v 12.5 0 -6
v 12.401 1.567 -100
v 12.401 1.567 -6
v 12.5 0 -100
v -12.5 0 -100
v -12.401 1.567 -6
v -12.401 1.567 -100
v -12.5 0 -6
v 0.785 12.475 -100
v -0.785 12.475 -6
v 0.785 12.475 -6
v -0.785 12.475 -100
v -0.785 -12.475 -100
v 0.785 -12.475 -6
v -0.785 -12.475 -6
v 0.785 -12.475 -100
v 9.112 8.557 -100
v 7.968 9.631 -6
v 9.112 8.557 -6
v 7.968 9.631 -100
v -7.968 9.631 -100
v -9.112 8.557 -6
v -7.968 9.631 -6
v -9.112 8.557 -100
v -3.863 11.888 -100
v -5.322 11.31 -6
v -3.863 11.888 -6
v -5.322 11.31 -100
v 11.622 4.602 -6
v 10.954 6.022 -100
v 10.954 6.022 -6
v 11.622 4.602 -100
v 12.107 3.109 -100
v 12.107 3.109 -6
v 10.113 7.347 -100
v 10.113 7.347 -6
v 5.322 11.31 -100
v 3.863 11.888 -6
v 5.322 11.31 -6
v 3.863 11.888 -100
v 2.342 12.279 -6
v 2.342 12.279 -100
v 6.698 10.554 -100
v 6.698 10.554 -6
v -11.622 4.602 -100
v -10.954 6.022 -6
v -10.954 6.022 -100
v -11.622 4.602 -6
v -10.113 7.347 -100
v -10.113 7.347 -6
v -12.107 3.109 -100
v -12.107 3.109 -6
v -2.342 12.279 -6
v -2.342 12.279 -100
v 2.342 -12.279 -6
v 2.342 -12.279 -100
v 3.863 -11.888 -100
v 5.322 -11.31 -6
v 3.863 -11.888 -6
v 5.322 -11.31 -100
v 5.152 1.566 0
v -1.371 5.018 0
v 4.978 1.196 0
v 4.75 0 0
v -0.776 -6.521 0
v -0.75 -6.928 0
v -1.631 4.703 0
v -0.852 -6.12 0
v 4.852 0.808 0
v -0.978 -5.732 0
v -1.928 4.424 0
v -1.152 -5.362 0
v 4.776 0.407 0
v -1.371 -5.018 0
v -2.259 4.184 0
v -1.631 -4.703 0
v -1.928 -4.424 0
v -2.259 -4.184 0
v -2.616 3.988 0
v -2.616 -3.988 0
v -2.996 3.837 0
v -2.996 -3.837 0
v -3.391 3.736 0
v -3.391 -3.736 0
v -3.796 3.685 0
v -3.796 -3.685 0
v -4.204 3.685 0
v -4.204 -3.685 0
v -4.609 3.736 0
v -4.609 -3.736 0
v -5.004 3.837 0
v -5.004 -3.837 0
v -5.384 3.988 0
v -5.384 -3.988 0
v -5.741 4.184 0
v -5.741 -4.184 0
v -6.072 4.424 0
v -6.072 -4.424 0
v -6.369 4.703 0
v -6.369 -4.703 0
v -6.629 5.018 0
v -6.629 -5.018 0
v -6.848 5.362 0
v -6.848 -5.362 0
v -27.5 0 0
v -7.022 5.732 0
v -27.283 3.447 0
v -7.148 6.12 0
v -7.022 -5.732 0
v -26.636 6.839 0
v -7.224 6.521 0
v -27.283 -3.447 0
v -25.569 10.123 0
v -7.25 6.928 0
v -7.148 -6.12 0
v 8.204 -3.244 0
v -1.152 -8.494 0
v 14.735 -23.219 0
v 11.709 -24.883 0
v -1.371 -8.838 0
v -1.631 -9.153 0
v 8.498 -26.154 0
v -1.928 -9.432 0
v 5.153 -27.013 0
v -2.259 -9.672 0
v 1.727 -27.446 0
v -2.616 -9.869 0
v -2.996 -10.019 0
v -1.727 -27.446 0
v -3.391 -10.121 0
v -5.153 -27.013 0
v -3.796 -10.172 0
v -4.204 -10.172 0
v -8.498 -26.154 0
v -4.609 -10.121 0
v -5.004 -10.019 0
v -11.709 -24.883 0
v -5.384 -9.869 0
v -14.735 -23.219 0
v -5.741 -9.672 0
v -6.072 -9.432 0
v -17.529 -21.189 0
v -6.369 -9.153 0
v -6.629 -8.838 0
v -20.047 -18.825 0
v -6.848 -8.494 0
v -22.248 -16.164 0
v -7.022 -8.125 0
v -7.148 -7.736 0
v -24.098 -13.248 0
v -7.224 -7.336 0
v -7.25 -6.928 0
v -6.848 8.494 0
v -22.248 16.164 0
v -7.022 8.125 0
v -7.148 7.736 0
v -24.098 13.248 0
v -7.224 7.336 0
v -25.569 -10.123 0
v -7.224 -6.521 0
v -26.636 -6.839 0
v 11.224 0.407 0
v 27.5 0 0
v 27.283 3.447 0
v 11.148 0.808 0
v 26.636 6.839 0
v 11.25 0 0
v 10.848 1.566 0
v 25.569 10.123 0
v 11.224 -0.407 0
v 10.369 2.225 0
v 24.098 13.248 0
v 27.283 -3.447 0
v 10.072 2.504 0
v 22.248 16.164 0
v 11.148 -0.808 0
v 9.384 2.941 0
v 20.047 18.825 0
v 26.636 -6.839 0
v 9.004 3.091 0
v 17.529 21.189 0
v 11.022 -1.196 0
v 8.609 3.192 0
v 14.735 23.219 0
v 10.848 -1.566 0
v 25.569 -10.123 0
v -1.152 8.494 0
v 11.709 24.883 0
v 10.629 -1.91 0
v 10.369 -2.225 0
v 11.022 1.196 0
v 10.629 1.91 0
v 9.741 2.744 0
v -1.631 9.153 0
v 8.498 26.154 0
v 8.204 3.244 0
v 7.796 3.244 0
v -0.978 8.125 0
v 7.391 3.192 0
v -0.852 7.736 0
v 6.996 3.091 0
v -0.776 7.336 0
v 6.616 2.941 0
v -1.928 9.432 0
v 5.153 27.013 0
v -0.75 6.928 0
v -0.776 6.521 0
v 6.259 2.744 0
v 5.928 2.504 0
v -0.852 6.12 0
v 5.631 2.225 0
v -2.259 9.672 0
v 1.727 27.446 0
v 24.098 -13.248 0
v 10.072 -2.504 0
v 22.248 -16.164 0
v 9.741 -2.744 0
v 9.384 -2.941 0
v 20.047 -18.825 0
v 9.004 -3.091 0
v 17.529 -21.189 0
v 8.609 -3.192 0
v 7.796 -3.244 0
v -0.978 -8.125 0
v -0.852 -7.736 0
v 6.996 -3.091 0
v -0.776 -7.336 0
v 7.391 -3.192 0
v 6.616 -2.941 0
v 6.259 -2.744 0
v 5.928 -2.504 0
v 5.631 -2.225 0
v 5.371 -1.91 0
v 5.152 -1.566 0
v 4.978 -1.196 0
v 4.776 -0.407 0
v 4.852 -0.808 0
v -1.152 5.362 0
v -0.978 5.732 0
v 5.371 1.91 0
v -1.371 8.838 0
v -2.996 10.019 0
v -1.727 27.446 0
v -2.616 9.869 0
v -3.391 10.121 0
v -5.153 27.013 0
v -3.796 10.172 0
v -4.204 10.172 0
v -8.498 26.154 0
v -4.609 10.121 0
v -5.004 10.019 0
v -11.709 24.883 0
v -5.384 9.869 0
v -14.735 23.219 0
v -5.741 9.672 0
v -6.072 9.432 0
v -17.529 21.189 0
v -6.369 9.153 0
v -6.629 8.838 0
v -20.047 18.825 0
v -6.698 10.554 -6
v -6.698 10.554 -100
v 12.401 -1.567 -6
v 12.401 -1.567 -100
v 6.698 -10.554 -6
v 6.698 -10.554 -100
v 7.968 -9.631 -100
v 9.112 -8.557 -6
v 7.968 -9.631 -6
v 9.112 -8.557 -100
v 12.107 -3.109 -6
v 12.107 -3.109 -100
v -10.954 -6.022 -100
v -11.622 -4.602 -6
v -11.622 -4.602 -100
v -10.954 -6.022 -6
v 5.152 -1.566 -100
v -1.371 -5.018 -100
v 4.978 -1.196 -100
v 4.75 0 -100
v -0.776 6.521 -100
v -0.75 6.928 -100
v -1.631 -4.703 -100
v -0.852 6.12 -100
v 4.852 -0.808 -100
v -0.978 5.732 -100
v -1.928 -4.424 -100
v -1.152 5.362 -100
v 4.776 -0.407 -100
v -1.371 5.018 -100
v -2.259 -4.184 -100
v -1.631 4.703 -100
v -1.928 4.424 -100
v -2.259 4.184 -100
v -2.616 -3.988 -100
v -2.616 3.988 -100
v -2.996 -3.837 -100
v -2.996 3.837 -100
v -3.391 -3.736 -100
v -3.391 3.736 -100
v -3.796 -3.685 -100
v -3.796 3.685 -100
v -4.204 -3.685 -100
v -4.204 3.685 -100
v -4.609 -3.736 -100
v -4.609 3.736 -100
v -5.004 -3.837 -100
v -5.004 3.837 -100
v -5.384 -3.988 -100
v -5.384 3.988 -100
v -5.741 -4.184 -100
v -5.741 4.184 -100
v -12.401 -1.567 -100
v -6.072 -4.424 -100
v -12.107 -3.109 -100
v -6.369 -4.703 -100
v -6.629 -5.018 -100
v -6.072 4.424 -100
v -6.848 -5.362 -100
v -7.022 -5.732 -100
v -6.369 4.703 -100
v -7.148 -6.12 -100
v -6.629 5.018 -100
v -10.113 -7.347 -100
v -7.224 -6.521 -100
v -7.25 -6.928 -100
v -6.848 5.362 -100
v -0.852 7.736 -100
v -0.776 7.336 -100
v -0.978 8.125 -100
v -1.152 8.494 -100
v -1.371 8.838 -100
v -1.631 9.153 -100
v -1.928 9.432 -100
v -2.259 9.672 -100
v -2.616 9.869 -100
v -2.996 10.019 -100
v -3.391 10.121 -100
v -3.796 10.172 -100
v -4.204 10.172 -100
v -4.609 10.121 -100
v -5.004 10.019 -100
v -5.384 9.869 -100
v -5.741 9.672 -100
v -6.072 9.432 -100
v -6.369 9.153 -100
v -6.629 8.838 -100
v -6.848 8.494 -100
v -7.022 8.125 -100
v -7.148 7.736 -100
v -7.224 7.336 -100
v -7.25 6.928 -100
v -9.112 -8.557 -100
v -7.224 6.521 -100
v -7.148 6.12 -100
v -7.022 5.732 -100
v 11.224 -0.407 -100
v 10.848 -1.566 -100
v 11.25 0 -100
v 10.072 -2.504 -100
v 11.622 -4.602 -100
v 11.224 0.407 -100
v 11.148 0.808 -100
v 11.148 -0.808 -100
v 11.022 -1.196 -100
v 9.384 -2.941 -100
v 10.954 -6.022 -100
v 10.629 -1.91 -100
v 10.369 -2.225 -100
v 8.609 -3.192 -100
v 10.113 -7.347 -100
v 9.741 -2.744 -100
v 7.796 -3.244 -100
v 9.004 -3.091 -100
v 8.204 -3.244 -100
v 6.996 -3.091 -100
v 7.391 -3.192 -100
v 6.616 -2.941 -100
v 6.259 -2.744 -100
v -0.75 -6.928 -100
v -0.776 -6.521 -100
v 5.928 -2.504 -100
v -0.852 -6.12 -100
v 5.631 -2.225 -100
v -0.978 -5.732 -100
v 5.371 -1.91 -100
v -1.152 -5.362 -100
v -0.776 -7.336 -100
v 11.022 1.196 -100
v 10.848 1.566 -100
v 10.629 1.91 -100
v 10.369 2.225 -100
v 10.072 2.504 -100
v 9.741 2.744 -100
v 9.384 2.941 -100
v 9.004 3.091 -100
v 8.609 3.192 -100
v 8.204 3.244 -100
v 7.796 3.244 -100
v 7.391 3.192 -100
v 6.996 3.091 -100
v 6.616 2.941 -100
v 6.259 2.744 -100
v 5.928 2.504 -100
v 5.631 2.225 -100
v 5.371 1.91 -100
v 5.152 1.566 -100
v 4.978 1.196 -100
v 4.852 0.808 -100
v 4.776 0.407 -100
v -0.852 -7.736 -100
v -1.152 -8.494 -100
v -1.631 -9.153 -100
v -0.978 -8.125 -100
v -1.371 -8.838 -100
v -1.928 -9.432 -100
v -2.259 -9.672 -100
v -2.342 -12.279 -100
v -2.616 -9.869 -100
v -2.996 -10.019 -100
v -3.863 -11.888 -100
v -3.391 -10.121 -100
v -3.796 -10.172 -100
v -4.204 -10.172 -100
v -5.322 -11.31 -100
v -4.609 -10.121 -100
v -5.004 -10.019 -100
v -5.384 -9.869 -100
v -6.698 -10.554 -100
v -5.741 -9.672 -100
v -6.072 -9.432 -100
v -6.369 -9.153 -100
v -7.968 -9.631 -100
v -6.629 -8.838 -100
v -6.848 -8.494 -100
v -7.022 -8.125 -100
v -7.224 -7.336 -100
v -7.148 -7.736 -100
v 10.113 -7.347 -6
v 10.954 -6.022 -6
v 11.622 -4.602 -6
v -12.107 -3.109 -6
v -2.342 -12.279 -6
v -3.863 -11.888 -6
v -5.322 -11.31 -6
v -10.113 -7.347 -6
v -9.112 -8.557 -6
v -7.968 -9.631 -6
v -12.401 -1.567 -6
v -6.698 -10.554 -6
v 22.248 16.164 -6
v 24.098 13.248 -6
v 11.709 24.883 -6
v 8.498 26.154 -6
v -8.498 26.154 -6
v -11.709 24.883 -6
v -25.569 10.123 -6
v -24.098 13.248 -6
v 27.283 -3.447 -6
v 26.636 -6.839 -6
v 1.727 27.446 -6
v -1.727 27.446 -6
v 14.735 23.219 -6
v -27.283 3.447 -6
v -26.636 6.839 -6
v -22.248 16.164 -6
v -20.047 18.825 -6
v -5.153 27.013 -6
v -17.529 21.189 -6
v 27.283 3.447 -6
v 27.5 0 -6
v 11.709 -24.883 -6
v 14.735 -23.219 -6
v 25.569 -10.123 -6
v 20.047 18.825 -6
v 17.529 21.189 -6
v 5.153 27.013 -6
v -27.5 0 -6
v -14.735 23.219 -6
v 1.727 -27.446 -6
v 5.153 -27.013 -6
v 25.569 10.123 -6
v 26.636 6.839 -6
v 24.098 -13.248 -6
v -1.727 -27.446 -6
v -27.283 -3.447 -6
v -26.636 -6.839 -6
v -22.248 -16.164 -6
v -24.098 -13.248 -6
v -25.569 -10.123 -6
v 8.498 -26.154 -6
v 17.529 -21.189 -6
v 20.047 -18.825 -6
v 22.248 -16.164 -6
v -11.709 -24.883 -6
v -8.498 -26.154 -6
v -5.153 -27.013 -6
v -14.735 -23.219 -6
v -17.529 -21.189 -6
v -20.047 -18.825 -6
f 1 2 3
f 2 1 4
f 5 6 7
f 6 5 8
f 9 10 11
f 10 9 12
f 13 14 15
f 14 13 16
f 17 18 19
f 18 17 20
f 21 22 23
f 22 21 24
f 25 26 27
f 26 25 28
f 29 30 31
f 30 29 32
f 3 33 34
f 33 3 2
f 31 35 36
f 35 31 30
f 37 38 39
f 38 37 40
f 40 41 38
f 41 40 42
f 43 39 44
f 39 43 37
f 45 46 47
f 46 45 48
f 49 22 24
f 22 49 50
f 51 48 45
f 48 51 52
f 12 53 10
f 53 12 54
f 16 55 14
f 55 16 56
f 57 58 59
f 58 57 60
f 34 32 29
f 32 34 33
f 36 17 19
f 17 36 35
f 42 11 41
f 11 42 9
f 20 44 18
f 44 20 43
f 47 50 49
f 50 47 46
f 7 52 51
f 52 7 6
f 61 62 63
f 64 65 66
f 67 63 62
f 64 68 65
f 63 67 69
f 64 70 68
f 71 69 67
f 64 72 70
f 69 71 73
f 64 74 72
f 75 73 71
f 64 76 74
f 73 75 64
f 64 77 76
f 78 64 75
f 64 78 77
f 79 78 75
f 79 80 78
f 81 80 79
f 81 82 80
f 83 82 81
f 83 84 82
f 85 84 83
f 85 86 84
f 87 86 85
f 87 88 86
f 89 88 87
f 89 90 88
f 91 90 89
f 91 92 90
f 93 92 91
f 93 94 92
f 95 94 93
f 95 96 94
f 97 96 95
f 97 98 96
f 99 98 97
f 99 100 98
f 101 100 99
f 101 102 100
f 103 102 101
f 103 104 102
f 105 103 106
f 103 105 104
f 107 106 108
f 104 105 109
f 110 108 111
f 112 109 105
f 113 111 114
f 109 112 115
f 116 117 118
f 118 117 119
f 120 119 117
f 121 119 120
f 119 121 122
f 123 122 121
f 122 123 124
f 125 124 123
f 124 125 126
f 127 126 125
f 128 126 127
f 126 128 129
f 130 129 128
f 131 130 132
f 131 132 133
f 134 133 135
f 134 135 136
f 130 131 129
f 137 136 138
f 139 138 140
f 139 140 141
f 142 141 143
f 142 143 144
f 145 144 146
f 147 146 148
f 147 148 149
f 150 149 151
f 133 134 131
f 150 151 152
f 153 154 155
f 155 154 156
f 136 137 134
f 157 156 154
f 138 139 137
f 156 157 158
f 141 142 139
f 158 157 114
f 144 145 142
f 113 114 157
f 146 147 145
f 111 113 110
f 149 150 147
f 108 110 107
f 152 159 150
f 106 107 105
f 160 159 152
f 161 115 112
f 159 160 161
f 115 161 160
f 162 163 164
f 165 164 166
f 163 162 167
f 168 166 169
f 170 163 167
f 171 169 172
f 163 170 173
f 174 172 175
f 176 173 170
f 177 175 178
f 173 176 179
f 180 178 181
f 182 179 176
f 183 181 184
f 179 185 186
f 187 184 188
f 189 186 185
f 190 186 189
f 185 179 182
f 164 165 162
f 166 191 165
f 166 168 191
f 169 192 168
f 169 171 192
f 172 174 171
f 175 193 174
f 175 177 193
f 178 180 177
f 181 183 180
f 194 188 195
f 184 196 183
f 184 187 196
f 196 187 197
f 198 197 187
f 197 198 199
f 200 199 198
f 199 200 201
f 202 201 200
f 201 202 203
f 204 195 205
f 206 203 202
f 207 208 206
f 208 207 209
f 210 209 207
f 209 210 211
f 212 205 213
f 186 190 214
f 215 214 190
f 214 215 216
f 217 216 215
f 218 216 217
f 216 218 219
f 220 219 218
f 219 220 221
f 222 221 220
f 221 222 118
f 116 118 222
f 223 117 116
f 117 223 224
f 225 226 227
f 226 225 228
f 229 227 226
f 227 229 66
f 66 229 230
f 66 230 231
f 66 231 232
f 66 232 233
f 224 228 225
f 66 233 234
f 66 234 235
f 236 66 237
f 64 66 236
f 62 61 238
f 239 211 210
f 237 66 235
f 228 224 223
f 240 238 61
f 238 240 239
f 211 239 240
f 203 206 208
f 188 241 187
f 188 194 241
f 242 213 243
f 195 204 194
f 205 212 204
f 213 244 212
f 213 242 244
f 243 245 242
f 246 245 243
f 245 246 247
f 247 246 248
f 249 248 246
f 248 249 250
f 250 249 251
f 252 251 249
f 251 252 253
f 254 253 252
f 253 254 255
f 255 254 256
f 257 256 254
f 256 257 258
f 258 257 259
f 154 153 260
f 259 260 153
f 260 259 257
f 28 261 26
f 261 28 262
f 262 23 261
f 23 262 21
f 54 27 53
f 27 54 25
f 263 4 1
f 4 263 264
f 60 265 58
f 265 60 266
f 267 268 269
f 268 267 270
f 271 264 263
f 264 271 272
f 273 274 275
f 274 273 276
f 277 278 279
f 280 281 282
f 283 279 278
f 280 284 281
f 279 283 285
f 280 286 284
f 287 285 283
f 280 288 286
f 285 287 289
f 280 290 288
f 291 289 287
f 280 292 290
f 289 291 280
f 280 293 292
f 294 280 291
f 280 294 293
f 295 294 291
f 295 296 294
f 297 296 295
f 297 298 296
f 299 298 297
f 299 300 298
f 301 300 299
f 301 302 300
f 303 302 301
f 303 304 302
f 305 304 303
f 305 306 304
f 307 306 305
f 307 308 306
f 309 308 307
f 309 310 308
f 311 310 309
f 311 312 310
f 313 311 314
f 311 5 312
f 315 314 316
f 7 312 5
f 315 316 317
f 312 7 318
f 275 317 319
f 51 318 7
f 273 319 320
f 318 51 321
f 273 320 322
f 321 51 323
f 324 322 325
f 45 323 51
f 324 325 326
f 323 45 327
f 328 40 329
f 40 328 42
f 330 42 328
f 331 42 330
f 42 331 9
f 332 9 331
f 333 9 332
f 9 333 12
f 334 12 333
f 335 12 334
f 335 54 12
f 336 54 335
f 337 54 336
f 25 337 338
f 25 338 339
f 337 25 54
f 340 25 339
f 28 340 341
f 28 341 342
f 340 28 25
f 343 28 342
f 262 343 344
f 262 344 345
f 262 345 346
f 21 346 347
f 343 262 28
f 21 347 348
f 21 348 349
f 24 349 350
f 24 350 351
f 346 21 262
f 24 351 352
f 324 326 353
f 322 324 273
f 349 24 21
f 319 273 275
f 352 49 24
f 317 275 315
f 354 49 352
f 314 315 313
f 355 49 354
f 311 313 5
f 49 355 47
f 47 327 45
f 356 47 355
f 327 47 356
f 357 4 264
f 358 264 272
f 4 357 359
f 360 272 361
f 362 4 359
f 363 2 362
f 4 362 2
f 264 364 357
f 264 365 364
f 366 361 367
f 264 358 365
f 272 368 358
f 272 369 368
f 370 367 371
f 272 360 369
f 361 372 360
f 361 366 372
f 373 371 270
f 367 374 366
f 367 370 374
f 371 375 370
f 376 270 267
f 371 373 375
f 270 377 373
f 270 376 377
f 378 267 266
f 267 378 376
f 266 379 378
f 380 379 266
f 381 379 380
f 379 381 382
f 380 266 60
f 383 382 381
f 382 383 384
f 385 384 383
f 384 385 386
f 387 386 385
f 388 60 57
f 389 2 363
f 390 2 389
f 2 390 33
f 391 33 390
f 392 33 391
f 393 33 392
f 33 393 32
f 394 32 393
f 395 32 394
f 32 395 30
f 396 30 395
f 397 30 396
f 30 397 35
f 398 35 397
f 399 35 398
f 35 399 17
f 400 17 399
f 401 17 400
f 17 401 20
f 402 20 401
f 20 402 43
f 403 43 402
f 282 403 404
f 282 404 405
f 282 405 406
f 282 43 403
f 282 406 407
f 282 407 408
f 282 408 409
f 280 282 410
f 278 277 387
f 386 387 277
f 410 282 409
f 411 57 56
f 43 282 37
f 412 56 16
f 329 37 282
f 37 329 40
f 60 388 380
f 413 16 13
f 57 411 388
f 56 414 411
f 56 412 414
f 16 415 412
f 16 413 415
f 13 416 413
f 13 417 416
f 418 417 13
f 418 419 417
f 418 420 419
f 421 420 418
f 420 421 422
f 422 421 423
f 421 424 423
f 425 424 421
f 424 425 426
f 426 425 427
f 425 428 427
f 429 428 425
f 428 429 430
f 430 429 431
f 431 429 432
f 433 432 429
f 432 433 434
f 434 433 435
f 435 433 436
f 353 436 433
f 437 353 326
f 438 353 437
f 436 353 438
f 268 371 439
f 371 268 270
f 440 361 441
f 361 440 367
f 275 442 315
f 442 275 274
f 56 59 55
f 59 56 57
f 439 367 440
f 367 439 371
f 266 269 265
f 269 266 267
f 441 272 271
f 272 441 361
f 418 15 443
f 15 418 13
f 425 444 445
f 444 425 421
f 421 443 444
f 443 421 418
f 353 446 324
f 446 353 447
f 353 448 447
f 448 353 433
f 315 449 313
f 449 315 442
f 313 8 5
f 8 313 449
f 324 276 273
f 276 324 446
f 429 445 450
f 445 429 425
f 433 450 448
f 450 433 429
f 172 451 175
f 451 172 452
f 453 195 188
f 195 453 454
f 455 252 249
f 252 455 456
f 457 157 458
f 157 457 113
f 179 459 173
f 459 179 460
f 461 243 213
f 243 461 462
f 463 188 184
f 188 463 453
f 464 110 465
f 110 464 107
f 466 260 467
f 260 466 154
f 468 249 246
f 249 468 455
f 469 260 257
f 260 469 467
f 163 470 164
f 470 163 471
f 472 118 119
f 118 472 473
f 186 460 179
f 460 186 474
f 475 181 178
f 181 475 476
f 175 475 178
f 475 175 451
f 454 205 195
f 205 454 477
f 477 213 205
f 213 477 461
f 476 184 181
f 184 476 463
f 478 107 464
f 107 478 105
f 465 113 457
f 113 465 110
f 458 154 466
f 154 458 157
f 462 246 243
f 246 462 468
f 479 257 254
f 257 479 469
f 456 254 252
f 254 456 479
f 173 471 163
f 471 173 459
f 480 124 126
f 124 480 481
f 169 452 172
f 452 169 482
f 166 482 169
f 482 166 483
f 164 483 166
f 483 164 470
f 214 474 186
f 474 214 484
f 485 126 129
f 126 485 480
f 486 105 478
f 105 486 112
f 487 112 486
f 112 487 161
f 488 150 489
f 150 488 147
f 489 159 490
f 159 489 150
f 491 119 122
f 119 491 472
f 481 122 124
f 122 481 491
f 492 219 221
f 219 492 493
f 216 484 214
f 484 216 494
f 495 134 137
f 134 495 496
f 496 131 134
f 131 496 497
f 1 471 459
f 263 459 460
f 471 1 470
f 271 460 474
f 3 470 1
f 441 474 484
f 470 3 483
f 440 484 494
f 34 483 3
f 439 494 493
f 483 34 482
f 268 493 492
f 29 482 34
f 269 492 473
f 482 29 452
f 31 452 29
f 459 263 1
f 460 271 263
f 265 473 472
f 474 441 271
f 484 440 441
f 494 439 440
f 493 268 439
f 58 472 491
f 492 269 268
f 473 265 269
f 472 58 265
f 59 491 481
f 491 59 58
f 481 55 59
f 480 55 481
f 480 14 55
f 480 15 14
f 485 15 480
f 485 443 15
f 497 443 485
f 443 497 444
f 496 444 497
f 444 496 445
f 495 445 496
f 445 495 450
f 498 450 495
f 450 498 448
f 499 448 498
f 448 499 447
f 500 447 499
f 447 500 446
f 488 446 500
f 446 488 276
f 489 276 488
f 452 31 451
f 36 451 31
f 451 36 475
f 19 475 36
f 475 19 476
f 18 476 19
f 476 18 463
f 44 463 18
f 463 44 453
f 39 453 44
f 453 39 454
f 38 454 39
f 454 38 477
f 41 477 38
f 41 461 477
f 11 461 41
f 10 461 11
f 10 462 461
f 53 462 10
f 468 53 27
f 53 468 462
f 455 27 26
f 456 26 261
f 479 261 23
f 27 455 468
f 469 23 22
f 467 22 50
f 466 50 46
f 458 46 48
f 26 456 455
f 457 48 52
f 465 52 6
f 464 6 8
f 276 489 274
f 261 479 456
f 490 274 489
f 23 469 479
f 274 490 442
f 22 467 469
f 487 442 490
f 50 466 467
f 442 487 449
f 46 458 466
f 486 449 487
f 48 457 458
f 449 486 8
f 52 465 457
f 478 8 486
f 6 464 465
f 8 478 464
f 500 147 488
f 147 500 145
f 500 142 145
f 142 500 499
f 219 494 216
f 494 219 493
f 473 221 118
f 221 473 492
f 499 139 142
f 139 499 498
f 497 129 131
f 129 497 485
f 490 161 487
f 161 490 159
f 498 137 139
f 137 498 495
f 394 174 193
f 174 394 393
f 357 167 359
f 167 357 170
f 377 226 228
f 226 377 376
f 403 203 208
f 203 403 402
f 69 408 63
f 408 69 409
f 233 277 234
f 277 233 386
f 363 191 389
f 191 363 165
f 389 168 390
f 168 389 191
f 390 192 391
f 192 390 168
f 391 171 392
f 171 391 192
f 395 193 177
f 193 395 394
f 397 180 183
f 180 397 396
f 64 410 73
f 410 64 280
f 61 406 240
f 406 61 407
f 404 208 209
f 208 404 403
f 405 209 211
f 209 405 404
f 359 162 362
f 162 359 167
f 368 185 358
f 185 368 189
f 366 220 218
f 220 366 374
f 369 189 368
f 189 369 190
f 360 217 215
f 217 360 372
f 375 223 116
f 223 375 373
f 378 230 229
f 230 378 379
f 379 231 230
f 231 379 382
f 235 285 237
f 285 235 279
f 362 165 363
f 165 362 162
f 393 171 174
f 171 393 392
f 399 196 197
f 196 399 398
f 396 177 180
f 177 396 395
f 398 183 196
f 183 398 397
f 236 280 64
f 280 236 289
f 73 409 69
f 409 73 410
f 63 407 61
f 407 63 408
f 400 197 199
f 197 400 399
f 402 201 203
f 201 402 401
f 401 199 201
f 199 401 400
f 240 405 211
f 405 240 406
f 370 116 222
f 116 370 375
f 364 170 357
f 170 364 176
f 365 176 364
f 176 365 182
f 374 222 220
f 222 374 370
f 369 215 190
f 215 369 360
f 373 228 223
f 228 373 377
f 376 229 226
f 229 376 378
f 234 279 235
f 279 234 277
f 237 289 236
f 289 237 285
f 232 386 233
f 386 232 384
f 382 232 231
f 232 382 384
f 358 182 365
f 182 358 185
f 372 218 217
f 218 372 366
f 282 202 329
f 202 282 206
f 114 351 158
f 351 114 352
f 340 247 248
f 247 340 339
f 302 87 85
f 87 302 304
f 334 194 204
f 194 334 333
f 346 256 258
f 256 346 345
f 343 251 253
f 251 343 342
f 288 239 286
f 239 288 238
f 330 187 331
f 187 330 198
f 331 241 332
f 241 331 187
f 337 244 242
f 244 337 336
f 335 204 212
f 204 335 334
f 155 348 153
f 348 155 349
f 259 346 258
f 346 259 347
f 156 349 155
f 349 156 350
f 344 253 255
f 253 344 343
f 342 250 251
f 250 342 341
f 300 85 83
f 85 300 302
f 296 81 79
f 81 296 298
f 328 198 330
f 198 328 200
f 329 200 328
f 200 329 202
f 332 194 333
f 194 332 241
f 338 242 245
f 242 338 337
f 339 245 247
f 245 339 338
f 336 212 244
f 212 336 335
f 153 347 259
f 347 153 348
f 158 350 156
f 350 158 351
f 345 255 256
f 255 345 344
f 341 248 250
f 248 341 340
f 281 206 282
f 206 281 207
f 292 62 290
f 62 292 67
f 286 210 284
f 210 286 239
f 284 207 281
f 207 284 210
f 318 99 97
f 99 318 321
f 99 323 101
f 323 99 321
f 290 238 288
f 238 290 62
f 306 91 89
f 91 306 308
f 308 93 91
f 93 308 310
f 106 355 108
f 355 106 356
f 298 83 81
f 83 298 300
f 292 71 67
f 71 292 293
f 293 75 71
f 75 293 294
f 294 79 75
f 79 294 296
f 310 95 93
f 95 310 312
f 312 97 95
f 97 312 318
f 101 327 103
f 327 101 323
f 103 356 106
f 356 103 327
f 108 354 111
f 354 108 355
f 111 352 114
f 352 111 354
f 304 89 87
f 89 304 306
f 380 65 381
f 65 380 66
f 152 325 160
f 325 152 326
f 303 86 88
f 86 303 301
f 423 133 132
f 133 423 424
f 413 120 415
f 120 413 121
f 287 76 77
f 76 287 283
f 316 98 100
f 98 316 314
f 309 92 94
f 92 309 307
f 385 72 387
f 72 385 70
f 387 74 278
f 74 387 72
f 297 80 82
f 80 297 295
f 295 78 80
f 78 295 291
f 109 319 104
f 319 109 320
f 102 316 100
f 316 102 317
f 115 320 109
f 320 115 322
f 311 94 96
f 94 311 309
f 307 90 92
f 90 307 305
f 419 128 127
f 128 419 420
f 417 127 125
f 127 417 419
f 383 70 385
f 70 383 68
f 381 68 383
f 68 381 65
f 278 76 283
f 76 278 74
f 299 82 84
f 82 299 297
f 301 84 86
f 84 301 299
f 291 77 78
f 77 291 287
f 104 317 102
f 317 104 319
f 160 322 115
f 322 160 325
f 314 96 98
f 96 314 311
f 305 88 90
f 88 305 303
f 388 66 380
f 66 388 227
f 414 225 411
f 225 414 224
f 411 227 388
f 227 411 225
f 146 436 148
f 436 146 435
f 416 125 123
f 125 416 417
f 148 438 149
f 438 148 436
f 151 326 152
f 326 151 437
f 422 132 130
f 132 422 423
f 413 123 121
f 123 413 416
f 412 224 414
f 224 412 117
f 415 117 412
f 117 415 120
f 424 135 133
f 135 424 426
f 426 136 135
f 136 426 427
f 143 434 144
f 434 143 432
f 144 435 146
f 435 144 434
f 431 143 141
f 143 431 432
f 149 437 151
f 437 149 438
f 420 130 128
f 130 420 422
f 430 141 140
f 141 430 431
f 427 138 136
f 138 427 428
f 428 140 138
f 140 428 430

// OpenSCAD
$fn = 50;


difference() {
	union() {
		translate(v = [0, 0, -100.0000000000]) {
			cylinder(h = 100, r = 12.5000000000);
		}
		translate(v = [0, 0, -6.0000000000]) {
			cylinder(h = 6, r = 27.5000000000);
		}
	}
	union() {
		#translate(v = [8.0000000000, 0.0000000000, -100]) {
			cylinder(h = 100, r = 3.2500000000);
		}
		#translate(v = [-4.0000000000, 6.9282032303, -100]) {
			cylinder(h = 100, r = 3.2500000000);
		}
		#translate(v = [-4.0000000000, -6.9282032303, -100]) {
			cylinder(h = 100, r = 3.2500000000);
		}
	}
}
